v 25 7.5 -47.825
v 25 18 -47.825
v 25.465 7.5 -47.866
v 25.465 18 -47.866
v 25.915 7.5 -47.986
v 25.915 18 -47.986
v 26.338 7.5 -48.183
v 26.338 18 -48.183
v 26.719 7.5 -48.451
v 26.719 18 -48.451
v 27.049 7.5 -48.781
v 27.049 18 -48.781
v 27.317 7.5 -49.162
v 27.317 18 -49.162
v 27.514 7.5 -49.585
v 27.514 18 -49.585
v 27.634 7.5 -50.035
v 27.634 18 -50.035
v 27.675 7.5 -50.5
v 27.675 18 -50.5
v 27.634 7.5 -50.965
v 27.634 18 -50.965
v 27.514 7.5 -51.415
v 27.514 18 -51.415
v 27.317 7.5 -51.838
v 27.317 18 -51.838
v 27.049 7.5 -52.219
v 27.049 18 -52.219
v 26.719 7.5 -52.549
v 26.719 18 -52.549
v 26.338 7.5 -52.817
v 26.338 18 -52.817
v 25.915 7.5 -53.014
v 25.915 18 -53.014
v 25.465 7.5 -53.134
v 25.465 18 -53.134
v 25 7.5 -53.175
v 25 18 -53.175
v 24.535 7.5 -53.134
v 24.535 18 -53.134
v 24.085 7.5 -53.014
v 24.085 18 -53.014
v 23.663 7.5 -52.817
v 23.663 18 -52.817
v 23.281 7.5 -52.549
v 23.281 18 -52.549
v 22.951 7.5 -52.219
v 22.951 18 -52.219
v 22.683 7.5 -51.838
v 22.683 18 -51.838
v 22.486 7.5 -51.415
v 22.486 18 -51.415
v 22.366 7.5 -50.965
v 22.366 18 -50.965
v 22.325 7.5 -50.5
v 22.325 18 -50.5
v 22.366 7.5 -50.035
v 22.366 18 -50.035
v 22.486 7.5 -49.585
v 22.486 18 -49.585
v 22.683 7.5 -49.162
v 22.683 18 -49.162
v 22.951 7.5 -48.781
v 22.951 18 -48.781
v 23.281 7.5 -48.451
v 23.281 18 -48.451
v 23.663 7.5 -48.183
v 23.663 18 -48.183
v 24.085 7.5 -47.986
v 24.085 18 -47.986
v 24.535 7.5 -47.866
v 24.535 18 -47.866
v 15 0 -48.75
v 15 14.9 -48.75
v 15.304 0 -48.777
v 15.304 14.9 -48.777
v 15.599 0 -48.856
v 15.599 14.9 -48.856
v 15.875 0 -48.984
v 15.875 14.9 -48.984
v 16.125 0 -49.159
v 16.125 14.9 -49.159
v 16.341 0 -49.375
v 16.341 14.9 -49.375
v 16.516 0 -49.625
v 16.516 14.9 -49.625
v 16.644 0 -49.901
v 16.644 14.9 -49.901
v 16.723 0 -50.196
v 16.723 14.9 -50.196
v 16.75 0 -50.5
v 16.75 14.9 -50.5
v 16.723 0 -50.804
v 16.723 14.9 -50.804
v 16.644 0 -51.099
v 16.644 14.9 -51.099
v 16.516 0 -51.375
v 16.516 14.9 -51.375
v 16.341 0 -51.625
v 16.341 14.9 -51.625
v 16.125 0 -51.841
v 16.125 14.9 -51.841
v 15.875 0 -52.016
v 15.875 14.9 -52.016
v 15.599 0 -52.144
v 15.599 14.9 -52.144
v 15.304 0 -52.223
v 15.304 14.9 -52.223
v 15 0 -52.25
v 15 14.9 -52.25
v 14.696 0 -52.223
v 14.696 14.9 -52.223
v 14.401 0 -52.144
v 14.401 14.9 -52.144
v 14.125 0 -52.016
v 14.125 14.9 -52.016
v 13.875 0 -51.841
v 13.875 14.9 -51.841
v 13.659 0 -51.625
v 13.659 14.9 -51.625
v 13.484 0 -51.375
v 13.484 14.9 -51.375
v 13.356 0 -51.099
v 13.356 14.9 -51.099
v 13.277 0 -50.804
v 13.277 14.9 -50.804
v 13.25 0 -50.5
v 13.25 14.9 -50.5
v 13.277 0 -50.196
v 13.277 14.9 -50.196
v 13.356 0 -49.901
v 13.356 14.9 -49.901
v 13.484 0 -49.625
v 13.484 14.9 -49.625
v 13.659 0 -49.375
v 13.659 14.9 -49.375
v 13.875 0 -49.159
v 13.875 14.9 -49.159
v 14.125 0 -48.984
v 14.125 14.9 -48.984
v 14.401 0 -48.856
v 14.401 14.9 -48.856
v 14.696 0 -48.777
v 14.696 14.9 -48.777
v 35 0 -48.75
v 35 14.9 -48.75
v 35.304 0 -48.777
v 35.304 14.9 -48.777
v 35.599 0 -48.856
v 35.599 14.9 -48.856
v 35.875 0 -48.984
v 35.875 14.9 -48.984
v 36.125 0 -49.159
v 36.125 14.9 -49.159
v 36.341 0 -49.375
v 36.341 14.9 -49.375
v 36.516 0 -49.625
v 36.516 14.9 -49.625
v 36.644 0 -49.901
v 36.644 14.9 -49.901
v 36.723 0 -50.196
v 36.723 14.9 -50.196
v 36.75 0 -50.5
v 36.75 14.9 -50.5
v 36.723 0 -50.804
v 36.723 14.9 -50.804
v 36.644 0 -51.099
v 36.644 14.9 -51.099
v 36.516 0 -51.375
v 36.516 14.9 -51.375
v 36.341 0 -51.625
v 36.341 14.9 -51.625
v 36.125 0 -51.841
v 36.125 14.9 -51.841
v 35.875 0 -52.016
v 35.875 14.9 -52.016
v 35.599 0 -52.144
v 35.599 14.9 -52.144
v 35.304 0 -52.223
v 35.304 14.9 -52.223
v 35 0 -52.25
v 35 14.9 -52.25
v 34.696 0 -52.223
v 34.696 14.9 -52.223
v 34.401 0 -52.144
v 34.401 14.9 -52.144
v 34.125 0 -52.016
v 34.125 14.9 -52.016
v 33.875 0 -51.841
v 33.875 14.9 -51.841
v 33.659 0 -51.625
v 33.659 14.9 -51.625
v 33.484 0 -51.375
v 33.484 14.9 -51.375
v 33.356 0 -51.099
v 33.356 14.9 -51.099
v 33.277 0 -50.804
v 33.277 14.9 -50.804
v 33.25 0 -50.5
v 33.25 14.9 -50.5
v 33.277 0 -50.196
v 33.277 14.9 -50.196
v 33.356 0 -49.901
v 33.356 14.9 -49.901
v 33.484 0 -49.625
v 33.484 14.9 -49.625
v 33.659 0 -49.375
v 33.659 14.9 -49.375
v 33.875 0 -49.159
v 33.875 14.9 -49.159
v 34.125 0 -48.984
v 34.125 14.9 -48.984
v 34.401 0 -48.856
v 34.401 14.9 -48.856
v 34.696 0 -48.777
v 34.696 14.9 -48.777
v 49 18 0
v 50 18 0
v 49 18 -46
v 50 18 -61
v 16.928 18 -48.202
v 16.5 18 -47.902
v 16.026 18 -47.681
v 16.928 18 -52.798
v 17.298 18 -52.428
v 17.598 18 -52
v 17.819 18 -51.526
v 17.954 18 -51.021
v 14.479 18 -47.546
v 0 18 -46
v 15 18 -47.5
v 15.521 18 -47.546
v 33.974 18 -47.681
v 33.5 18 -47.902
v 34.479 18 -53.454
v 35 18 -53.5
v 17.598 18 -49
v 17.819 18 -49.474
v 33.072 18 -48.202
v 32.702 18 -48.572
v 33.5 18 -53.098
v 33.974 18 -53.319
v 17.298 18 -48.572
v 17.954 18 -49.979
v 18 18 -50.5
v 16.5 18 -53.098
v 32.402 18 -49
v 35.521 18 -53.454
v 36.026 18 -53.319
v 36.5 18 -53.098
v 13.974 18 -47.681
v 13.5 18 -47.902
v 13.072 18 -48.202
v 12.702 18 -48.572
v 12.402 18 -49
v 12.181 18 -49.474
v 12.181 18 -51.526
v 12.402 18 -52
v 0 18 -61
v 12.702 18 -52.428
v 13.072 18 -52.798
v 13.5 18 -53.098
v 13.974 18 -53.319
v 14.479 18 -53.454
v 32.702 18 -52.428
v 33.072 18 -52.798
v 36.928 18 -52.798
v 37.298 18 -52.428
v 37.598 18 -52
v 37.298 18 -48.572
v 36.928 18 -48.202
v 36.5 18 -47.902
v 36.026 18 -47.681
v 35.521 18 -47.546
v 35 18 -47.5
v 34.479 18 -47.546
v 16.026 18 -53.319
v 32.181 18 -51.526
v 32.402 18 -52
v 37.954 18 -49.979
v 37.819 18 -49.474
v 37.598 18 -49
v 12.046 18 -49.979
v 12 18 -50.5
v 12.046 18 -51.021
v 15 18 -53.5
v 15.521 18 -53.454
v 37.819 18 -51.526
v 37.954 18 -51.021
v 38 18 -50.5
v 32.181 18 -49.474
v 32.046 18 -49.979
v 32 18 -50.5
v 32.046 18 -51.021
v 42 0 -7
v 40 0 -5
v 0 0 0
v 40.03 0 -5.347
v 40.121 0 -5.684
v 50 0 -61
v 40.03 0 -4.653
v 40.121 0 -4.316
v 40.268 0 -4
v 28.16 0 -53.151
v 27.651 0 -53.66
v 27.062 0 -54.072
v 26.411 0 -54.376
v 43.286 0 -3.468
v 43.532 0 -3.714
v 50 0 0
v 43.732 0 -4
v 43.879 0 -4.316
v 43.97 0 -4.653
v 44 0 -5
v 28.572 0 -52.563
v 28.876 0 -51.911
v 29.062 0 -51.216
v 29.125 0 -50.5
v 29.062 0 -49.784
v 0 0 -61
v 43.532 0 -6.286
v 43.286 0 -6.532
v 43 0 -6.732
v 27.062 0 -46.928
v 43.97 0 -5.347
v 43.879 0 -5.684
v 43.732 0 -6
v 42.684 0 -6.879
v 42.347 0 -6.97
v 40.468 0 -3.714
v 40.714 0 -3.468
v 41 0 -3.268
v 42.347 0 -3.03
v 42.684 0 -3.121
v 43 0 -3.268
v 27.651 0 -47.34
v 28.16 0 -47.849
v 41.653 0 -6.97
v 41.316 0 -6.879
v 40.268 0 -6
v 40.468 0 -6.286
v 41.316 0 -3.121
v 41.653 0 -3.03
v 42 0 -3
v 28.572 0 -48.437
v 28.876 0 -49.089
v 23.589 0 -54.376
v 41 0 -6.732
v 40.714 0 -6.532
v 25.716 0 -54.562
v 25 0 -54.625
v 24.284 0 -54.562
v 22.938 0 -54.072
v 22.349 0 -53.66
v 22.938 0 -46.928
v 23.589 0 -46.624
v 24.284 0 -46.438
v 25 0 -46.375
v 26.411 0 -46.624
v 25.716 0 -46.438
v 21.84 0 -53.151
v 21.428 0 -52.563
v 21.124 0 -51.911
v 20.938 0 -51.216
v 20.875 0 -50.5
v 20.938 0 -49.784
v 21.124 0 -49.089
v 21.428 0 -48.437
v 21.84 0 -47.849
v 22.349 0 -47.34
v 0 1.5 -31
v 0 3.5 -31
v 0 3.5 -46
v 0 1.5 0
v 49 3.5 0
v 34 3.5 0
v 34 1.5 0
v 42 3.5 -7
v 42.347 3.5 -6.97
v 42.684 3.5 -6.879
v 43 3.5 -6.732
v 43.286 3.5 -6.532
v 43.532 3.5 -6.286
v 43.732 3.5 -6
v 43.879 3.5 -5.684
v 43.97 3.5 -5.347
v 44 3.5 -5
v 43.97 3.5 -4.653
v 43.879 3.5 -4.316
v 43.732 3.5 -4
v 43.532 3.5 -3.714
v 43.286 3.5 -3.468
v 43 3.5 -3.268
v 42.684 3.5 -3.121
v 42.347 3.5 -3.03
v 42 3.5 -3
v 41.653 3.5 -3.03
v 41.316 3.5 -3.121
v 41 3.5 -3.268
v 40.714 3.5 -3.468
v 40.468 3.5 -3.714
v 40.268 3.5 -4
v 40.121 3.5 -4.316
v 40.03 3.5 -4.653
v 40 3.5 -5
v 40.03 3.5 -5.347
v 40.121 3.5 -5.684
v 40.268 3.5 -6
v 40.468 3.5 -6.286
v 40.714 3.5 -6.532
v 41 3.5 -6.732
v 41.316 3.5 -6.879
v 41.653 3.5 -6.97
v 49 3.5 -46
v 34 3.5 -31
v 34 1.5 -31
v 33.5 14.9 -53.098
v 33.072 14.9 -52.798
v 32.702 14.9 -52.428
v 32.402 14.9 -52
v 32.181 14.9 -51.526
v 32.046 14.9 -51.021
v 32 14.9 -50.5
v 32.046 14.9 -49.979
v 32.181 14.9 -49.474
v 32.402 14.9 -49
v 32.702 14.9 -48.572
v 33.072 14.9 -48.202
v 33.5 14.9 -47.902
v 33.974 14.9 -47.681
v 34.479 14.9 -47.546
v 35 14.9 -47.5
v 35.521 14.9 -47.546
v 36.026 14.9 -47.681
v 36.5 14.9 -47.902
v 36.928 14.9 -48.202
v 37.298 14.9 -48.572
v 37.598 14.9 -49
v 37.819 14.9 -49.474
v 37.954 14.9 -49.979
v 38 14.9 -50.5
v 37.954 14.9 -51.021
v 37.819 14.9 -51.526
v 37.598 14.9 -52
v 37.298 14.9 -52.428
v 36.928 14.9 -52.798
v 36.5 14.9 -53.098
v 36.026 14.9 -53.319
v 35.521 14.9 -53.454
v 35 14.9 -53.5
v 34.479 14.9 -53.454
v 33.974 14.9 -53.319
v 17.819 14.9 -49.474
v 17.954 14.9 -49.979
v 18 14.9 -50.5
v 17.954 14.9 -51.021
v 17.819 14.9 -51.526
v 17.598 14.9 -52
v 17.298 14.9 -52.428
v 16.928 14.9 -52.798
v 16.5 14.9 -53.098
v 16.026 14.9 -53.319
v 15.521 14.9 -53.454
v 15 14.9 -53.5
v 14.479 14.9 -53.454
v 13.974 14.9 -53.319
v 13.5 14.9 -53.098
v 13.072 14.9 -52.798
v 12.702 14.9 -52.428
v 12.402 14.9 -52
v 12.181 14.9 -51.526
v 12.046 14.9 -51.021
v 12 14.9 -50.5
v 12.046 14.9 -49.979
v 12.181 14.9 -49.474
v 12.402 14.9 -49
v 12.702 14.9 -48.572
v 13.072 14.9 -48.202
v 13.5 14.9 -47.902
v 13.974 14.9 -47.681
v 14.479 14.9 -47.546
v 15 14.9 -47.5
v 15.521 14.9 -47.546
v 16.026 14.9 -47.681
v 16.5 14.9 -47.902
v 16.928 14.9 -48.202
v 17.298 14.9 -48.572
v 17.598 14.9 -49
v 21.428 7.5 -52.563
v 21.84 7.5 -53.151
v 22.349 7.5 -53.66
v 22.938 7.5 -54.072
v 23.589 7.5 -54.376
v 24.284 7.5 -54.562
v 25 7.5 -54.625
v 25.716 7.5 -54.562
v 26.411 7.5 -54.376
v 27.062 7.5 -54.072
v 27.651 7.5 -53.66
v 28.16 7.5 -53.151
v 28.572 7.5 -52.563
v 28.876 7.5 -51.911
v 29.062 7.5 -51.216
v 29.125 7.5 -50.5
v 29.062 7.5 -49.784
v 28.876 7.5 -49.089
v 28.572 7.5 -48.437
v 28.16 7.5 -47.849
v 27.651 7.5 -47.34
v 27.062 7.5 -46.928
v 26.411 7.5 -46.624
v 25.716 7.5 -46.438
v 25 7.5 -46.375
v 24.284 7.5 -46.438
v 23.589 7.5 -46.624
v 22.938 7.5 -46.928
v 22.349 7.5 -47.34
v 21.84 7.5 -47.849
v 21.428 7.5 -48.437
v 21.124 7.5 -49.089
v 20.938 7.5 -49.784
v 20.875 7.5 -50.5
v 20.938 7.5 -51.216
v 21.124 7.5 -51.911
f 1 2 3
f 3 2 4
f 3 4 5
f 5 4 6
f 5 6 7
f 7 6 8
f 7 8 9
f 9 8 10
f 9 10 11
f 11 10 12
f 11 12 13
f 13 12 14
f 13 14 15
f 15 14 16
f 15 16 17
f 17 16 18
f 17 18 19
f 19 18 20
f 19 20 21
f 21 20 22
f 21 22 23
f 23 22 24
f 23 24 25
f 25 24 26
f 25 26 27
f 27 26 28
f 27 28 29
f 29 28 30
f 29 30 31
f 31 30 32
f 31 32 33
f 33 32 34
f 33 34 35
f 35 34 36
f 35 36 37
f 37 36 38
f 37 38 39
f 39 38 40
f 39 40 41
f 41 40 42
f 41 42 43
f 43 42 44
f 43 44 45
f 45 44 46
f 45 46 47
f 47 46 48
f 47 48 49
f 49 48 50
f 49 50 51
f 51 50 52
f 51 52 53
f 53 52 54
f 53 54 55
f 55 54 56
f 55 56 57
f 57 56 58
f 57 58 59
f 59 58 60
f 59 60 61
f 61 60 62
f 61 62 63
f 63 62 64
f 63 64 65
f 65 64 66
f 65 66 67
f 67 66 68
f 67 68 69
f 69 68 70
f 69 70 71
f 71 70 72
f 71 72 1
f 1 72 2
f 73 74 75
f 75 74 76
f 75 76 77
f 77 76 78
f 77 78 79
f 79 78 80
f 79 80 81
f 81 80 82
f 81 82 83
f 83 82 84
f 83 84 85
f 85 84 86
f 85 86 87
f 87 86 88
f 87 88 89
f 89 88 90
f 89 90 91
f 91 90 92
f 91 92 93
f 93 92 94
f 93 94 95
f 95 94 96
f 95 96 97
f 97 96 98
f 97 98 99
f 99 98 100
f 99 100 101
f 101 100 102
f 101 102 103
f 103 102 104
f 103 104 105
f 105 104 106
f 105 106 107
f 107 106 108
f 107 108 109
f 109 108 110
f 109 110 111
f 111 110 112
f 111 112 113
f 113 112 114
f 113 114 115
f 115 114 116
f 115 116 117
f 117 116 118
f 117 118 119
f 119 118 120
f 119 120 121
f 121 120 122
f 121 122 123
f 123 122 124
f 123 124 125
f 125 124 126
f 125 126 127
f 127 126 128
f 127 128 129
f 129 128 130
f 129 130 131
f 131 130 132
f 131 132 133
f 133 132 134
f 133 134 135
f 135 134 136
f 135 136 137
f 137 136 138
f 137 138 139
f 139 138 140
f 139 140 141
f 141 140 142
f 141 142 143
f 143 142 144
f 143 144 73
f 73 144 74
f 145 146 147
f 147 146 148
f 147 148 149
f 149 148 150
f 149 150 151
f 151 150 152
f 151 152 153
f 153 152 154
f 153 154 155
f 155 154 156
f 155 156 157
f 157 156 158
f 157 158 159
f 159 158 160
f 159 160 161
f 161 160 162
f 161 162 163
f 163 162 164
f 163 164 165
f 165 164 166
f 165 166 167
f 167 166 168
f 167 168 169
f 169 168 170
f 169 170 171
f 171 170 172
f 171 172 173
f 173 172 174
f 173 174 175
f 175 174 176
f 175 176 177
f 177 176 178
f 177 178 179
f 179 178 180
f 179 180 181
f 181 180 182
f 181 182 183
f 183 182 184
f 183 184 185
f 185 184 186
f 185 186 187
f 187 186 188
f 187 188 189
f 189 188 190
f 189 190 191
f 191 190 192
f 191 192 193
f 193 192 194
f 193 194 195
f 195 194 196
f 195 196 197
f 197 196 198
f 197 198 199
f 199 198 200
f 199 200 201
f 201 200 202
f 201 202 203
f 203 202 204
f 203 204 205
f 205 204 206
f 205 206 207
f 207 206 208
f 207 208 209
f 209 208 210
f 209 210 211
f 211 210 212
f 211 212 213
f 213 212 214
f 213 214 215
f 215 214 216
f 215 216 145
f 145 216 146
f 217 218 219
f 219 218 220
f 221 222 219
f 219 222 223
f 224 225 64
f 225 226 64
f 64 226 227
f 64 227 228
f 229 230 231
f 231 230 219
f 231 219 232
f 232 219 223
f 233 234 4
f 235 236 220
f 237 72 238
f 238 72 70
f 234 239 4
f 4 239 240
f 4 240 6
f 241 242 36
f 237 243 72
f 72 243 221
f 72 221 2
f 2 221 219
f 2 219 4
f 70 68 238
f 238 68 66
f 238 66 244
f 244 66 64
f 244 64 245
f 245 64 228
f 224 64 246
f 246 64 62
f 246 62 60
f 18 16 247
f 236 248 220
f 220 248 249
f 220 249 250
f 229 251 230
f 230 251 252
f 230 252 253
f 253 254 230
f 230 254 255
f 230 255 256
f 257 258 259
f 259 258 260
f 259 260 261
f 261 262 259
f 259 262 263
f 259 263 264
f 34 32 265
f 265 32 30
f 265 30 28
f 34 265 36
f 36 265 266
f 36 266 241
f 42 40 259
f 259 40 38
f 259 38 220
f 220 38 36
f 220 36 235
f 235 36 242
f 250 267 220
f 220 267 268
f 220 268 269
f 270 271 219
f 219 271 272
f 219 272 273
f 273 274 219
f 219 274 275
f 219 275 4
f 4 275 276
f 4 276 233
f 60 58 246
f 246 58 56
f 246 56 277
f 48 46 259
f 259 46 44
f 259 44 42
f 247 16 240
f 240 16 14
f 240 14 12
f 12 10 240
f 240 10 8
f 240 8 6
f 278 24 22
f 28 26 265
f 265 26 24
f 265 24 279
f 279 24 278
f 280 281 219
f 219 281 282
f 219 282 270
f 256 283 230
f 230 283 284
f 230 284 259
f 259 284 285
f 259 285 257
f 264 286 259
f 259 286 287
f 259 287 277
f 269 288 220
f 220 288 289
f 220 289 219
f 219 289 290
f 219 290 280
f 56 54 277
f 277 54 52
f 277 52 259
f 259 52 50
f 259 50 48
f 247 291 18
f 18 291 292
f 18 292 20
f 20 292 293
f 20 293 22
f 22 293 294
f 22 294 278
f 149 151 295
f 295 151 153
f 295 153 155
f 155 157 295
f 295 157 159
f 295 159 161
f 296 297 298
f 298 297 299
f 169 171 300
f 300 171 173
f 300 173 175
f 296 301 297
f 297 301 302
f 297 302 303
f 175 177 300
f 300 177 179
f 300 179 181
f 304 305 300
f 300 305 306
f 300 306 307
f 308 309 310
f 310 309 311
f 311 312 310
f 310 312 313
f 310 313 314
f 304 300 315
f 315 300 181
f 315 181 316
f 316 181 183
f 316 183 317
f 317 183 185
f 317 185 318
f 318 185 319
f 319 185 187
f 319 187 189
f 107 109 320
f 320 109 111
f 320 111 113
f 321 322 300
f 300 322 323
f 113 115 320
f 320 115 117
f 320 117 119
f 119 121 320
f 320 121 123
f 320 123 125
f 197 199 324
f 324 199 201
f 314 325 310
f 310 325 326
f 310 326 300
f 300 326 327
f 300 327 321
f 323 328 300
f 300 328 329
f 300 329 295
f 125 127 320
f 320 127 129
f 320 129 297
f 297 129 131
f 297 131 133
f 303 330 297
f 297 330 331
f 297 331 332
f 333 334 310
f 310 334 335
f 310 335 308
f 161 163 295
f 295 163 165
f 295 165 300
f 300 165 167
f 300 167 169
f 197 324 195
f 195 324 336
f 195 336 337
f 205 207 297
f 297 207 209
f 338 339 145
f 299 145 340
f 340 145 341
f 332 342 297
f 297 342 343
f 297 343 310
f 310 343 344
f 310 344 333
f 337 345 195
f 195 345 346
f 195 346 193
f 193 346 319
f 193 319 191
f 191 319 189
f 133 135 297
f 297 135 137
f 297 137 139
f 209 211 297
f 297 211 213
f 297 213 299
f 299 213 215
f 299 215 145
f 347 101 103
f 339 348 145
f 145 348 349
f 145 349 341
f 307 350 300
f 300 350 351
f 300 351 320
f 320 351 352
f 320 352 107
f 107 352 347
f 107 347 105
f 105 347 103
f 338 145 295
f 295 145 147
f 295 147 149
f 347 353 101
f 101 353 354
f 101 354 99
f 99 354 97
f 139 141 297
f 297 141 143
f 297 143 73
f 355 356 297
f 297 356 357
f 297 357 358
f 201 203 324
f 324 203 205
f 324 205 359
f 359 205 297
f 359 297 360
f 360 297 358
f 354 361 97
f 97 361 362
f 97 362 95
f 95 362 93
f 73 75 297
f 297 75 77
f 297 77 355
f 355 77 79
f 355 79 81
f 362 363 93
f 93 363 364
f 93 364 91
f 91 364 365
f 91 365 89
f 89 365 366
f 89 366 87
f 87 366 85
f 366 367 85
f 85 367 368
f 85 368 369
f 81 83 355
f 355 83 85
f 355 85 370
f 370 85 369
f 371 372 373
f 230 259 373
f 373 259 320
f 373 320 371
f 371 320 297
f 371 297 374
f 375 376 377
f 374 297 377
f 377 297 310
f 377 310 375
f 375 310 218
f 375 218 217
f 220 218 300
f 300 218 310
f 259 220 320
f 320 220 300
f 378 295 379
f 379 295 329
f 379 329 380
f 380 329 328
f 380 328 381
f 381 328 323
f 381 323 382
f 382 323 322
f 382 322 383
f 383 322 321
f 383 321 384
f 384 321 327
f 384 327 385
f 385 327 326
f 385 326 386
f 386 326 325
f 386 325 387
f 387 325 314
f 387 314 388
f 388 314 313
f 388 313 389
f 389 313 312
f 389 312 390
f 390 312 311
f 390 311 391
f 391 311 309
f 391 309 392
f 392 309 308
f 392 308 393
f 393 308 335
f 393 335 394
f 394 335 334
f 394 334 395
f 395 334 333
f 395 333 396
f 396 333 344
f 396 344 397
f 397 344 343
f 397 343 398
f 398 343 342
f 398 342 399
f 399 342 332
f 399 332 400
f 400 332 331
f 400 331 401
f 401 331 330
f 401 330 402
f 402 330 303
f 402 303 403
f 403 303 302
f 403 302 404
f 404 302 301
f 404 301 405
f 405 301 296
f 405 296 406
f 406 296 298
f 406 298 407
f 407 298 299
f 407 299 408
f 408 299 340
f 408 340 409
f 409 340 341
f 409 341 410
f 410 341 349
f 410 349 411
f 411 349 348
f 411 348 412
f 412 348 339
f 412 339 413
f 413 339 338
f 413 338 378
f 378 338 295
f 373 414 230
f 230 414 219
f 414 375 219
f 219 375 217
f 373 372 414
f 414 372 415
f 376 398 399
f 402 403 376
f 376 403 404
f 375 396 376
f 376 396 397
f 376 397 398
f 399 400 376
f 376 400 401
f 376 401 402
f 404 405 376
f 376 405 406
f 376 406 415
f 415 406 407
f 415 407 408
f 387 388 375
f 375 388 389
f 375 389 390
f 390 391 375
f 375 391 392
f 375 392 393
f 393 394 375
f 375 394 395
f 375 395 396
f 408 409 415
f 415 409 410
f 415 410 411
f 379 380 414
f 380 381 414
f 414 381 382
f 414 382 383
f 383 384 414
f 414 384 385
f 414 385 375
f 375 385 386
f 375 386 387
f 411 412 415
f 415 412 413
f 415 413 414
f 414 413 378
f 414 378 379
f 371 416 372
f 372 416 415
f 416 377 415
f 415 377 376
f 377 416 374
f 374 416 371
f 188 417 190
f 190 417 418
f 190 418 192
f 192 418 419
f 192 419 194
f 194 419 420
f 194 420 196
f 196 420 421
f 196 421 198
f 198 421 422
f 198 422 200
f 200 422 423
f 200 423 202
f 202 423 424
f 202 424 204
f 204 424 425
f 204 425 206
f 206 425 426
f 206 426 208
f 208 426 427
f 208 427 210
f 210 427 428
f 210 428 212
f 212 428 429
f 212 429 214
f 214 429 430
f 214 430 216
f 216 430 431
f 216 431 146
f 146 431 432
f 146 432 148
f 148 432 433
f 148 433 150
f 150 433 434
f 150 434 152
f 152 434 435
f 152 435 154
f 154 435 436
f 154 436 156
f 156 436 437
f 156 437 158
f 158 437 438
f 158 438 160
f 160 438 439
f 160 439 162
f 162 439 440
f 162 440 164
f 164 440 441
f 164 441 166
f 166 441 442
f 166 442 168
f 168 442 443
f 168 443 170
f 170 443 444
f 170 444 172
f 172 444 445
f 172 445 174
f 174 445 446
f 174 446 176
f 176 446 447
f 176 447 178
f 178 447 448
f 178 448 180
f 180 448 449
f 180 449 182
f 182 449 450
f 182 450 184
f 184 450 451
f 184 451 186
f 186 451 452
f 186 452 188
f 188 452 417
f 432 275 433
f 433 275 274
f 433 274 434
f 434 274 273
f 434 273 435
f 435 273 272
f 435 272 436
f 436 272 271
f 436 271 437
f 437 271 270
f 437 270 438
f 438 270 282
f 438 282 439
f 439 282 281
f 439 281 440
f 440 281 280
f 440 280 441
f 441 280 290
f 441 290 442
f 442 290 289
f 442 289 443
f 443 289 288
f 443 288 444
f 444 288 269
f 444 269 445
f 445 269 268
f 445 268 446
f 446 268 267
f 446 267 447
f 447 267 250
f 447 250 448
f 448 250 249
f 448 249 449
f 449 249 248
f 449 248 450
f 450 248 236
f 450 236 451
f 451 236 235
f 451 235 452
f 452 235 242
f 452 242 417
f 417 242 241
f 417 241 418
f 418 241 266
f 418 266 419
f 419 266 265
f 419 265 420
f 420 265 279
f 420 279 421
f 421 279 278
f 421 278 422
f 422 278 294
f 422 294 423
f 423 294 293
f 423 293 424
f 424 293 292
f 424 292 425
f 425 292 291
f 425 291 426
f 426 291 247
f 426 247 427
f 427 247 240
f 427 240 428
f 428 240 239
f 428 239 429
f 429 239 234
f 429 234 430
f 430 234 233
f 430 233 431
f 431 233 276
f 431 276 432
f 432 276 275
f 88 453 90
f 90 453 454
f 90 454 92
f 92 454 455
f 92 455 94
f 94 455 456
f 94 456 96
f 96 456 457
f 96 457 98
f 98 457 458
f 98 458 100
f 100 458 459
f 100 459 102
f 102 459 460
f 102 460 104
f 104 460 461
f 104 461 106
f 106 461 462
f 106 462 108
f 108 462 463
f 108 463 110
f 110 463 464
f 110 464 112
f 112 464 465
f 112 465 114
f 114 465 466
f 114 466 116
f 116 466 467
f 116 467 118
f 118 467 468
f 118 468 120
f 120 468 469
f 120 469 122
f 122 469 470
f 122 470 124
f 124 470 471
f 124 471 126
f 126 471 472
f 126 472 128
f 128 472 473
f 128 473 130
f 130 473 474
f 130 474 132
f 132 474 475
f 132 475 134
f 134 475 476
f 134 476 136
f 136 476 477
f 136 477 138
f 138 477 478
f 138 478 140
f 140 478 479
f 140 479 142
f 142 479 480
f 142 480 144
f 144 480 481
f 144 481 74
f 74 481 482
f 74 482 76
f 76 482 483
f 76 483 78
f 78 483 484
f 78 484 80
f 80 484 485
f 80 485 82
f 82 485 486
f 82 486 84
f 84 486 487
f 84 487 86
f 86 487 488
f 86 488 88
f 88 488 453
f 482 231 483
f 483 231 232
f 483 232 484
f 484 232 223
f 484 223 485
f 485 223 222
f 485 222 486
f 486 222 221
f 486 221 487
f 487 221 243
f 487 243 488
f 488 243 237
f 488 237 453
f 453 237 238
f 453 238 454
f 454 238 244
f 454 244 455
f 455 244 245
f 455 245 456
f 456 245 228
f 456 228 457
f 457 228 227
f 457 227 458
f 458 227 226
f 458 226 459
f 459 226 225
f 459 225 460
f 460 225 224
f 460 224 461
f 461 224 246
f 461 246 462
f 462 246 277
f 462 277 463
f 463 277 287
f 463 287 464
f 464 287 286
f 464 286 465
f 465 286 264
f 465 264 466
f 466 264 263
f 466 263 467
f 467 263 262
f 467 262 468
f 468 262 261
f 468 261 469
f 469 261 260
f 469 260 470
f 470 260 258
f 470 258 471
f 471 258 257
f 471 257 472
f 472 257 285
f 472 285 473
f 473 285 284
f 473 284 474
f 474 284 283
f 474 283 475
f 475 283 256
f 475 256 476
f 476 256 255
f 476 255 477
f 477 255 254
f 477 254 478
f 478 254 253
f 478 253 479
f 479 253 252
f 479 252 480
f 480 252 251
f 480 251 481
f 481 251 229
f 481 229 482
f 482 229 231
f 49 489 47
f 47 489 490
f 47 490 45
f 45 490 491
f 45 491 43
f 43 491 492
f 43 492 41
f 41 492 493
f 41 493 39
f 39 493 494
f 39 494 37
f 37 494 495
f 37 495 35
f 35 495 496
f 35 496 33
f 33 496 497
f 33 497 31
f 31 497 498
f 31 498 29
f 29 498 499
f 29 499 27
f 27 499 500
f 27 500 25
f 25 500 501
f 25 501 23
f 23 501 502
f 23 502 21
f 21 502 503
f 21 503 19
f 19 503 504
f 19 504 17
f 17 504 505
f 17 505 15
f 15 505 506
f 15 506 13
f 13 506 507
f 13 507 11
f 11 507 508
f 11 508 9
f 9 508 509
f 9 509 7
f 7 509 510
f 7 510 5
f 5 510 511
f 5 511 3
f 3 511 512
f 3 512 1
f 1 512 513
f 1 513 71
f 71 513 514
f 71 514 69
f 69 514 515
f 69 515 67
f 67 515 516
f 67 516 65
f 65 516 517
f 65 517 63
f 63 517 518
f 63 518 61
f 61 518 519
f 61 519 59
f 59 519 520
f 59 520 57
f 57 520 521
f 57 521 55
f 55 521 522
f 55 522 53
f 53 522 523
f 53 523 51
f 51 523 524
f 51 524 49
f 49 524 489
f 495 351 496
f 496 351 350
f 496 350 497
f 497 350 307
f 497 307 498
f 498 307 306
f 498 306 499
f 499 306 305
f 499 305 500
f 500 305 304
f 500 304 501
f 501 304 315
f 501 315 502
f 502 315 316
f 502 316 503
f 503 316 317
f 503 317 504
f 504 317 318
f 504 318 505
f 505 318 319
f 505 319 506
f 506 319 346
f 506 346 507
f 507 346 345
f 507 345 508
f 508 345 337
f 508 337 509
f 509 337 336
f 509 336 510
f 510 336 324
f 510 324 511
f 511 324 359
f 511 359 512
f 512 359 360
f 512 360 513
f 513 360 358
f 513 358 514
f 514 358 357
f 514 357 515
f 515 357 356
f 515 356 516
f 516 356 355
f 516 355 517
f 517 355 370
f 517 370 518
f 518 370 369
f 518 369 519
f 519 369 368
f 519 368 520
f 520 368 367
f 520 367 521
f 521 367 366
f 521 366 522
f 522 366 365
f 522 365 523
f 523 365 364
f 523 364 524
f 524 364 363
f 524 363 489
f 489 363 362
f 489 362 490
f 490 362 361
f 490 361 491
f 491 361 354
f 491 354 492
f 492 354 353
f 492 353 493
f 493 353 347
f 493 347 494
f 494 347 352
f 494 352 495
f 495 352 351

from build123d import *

# Parameters (mm, degrees)
OUTLINESKETCH2_W                               = 50
OUTLINESKETCH2_H                               = 61
OUTLINESKETCH2_R                               = 2
OUTLINEBOSS_EXTRUDE1_DEPTH                     = 18
BUILDPLATECUTOUTSKETCH1_W                      = 49
BUILDPLATECUTOUTSKETCH1_H                      = 46
BUILDPLATECUTOUTCUT_EXTRUDE7_DEPTH             = 14.5
HEATMATCUTSKETCH3_W                            = 34
HEATMATCUTSKETCH3_H                            = 31
HEATMATCUT_EXTRUDE8_DEPTH                      = 2
SKETCH1_R                                      = 1.75
SKETCH1_R_2                                    = 2.675
ZENDSTOPSWITCHMOUNTHOLESCUT_EXTRUDE1_DEPTH     = 81.901174281
SKETCH3_R                                      = 3
ZENDSTOPSWITCHMOUNTBOREHOLESCUT_EXTRUDE2_DEPTH = 3.1
SKETCH4_R                                      = 4.125
ZENDSTOPSWITCHCONNINGTOWERTBORECUT_EXTRU_DEPTH = 7.5


with BuildPart() as part:
    # OutlineSketch2 → OutlineBoss-Extrude1 (new body)
    with BuildSketch(Plane(origin=(0, 0, 0), x_dir=(1, 0, 0), z_dir=(0, 1, 0))):
        with Locations((25, 30.5)):
            Rectangle(OUTLINESKETCH2_W, OUTLINESKETCH2_H)
        with Locations(Location((42, 5, 0), (0, 0, 270))):
            Circle(OUTLINESKETCH2_R, mode=Mode.SUBTRACT)
    extrude(amount=OUTLINEBOSS_EXTRUDE1_DEPTH)

    # BuildPlateCutoutSketch1 → BuildPlateCutoutCut-Extrude7 (cut)
    with BuildSketch(Plane(origin=(0, 18, 0), x_dir=(1, 0, 0), z_dir=(0, 1, 0))):
        with Locations((24.5, 23)):
            Rectangle(BUILDPLATECUTOUTSKETCH1_W, BUILDPLATECUTOUTSKETCH1_H)
    extrude(amount=-BUILDPLATECUTOUTCUT_EXTRUDE7_DEPTH, mode=Mode.SUBTRACT)

    # HeatMatCutSketch3 → HeatMatCut-Extrude8 (cut)
    with BuildSketch(Plane(origin=(0, 3.5, 0), x_dir=(1, 0, 0), z_dir=(0, 1, 0))):
        with Locations((17, 15.5)):
            Rectangle(HEATMATCUTSKETCH3_W, HEATMATCUTSKETCH3_H)
    extrude(amount=-HEATMATCUT_EXTRUDE8_DEPTH, mode=Mode.SUBTRACT)

    # Sketch1 → ZEndStopSwitchMountHolesCut-Extrude1 (cut, through all)
    with BuildSketch(Plane(origin=(0, 18, 0), x_dir=(1, 0, 0), z_dir=(0, 1, 0))):
        with Locations(Location((35, 50.5, 0), (0, 0, 270))):
            Circle(SKETCH1_R)
        with Locations(Location((25, 50.5, 0), (0, 0, 270))):
            Circle(SKETCH1_R_2)
        with Locations(Location((15, 50.5, 0), (0, 0, 270))):
            Circle(SKETCH1_R)
    extrude(amount=-ZENDSTOPSWITCHMOUNTHOLESCUT_EXTRUDE1_DEPTH, mode=Mode.SUBTRACT)

    # Sketch3 → ZEndStopSwitchMountBoreHolesCut-Extrude2 (cut)
    with BuildSketch(Plane(origin=(0, 18, 0), x_dir=(1, 0, 0), z_dir=(0, 1, 0))):
        with Locations(Location((35, 50.5, 0), (0, 0, 270))):
            Circle(SKETCH3_R)
        with Locations(Location((15, 50.5, 0), (0, 0, 270))):
            Circle(SKETCH3_R)
    extrude(amount=-ZENDSTOPSWITCHMOUNTBOREHOLESCUT_EXTRUDE2_DEPTH, mode=Mode.SUBTRACT)

    # Sketch4 → ZEndStopSwitchConningTowertBoreCut-Extrude1 (cut)
    with BuildSketch(Plane.XZ):
        with Locations(Location((25, -50.5, 0), (0, 0, 270))):
            Circle(SKETCH4_R)
    extrude(amount=-ZENDSTOPSWITCHCONNINGTOWERTBORECUT_EXTRU_DEPTH, mode=Mode.SUBTRACT)


solid = part.part
